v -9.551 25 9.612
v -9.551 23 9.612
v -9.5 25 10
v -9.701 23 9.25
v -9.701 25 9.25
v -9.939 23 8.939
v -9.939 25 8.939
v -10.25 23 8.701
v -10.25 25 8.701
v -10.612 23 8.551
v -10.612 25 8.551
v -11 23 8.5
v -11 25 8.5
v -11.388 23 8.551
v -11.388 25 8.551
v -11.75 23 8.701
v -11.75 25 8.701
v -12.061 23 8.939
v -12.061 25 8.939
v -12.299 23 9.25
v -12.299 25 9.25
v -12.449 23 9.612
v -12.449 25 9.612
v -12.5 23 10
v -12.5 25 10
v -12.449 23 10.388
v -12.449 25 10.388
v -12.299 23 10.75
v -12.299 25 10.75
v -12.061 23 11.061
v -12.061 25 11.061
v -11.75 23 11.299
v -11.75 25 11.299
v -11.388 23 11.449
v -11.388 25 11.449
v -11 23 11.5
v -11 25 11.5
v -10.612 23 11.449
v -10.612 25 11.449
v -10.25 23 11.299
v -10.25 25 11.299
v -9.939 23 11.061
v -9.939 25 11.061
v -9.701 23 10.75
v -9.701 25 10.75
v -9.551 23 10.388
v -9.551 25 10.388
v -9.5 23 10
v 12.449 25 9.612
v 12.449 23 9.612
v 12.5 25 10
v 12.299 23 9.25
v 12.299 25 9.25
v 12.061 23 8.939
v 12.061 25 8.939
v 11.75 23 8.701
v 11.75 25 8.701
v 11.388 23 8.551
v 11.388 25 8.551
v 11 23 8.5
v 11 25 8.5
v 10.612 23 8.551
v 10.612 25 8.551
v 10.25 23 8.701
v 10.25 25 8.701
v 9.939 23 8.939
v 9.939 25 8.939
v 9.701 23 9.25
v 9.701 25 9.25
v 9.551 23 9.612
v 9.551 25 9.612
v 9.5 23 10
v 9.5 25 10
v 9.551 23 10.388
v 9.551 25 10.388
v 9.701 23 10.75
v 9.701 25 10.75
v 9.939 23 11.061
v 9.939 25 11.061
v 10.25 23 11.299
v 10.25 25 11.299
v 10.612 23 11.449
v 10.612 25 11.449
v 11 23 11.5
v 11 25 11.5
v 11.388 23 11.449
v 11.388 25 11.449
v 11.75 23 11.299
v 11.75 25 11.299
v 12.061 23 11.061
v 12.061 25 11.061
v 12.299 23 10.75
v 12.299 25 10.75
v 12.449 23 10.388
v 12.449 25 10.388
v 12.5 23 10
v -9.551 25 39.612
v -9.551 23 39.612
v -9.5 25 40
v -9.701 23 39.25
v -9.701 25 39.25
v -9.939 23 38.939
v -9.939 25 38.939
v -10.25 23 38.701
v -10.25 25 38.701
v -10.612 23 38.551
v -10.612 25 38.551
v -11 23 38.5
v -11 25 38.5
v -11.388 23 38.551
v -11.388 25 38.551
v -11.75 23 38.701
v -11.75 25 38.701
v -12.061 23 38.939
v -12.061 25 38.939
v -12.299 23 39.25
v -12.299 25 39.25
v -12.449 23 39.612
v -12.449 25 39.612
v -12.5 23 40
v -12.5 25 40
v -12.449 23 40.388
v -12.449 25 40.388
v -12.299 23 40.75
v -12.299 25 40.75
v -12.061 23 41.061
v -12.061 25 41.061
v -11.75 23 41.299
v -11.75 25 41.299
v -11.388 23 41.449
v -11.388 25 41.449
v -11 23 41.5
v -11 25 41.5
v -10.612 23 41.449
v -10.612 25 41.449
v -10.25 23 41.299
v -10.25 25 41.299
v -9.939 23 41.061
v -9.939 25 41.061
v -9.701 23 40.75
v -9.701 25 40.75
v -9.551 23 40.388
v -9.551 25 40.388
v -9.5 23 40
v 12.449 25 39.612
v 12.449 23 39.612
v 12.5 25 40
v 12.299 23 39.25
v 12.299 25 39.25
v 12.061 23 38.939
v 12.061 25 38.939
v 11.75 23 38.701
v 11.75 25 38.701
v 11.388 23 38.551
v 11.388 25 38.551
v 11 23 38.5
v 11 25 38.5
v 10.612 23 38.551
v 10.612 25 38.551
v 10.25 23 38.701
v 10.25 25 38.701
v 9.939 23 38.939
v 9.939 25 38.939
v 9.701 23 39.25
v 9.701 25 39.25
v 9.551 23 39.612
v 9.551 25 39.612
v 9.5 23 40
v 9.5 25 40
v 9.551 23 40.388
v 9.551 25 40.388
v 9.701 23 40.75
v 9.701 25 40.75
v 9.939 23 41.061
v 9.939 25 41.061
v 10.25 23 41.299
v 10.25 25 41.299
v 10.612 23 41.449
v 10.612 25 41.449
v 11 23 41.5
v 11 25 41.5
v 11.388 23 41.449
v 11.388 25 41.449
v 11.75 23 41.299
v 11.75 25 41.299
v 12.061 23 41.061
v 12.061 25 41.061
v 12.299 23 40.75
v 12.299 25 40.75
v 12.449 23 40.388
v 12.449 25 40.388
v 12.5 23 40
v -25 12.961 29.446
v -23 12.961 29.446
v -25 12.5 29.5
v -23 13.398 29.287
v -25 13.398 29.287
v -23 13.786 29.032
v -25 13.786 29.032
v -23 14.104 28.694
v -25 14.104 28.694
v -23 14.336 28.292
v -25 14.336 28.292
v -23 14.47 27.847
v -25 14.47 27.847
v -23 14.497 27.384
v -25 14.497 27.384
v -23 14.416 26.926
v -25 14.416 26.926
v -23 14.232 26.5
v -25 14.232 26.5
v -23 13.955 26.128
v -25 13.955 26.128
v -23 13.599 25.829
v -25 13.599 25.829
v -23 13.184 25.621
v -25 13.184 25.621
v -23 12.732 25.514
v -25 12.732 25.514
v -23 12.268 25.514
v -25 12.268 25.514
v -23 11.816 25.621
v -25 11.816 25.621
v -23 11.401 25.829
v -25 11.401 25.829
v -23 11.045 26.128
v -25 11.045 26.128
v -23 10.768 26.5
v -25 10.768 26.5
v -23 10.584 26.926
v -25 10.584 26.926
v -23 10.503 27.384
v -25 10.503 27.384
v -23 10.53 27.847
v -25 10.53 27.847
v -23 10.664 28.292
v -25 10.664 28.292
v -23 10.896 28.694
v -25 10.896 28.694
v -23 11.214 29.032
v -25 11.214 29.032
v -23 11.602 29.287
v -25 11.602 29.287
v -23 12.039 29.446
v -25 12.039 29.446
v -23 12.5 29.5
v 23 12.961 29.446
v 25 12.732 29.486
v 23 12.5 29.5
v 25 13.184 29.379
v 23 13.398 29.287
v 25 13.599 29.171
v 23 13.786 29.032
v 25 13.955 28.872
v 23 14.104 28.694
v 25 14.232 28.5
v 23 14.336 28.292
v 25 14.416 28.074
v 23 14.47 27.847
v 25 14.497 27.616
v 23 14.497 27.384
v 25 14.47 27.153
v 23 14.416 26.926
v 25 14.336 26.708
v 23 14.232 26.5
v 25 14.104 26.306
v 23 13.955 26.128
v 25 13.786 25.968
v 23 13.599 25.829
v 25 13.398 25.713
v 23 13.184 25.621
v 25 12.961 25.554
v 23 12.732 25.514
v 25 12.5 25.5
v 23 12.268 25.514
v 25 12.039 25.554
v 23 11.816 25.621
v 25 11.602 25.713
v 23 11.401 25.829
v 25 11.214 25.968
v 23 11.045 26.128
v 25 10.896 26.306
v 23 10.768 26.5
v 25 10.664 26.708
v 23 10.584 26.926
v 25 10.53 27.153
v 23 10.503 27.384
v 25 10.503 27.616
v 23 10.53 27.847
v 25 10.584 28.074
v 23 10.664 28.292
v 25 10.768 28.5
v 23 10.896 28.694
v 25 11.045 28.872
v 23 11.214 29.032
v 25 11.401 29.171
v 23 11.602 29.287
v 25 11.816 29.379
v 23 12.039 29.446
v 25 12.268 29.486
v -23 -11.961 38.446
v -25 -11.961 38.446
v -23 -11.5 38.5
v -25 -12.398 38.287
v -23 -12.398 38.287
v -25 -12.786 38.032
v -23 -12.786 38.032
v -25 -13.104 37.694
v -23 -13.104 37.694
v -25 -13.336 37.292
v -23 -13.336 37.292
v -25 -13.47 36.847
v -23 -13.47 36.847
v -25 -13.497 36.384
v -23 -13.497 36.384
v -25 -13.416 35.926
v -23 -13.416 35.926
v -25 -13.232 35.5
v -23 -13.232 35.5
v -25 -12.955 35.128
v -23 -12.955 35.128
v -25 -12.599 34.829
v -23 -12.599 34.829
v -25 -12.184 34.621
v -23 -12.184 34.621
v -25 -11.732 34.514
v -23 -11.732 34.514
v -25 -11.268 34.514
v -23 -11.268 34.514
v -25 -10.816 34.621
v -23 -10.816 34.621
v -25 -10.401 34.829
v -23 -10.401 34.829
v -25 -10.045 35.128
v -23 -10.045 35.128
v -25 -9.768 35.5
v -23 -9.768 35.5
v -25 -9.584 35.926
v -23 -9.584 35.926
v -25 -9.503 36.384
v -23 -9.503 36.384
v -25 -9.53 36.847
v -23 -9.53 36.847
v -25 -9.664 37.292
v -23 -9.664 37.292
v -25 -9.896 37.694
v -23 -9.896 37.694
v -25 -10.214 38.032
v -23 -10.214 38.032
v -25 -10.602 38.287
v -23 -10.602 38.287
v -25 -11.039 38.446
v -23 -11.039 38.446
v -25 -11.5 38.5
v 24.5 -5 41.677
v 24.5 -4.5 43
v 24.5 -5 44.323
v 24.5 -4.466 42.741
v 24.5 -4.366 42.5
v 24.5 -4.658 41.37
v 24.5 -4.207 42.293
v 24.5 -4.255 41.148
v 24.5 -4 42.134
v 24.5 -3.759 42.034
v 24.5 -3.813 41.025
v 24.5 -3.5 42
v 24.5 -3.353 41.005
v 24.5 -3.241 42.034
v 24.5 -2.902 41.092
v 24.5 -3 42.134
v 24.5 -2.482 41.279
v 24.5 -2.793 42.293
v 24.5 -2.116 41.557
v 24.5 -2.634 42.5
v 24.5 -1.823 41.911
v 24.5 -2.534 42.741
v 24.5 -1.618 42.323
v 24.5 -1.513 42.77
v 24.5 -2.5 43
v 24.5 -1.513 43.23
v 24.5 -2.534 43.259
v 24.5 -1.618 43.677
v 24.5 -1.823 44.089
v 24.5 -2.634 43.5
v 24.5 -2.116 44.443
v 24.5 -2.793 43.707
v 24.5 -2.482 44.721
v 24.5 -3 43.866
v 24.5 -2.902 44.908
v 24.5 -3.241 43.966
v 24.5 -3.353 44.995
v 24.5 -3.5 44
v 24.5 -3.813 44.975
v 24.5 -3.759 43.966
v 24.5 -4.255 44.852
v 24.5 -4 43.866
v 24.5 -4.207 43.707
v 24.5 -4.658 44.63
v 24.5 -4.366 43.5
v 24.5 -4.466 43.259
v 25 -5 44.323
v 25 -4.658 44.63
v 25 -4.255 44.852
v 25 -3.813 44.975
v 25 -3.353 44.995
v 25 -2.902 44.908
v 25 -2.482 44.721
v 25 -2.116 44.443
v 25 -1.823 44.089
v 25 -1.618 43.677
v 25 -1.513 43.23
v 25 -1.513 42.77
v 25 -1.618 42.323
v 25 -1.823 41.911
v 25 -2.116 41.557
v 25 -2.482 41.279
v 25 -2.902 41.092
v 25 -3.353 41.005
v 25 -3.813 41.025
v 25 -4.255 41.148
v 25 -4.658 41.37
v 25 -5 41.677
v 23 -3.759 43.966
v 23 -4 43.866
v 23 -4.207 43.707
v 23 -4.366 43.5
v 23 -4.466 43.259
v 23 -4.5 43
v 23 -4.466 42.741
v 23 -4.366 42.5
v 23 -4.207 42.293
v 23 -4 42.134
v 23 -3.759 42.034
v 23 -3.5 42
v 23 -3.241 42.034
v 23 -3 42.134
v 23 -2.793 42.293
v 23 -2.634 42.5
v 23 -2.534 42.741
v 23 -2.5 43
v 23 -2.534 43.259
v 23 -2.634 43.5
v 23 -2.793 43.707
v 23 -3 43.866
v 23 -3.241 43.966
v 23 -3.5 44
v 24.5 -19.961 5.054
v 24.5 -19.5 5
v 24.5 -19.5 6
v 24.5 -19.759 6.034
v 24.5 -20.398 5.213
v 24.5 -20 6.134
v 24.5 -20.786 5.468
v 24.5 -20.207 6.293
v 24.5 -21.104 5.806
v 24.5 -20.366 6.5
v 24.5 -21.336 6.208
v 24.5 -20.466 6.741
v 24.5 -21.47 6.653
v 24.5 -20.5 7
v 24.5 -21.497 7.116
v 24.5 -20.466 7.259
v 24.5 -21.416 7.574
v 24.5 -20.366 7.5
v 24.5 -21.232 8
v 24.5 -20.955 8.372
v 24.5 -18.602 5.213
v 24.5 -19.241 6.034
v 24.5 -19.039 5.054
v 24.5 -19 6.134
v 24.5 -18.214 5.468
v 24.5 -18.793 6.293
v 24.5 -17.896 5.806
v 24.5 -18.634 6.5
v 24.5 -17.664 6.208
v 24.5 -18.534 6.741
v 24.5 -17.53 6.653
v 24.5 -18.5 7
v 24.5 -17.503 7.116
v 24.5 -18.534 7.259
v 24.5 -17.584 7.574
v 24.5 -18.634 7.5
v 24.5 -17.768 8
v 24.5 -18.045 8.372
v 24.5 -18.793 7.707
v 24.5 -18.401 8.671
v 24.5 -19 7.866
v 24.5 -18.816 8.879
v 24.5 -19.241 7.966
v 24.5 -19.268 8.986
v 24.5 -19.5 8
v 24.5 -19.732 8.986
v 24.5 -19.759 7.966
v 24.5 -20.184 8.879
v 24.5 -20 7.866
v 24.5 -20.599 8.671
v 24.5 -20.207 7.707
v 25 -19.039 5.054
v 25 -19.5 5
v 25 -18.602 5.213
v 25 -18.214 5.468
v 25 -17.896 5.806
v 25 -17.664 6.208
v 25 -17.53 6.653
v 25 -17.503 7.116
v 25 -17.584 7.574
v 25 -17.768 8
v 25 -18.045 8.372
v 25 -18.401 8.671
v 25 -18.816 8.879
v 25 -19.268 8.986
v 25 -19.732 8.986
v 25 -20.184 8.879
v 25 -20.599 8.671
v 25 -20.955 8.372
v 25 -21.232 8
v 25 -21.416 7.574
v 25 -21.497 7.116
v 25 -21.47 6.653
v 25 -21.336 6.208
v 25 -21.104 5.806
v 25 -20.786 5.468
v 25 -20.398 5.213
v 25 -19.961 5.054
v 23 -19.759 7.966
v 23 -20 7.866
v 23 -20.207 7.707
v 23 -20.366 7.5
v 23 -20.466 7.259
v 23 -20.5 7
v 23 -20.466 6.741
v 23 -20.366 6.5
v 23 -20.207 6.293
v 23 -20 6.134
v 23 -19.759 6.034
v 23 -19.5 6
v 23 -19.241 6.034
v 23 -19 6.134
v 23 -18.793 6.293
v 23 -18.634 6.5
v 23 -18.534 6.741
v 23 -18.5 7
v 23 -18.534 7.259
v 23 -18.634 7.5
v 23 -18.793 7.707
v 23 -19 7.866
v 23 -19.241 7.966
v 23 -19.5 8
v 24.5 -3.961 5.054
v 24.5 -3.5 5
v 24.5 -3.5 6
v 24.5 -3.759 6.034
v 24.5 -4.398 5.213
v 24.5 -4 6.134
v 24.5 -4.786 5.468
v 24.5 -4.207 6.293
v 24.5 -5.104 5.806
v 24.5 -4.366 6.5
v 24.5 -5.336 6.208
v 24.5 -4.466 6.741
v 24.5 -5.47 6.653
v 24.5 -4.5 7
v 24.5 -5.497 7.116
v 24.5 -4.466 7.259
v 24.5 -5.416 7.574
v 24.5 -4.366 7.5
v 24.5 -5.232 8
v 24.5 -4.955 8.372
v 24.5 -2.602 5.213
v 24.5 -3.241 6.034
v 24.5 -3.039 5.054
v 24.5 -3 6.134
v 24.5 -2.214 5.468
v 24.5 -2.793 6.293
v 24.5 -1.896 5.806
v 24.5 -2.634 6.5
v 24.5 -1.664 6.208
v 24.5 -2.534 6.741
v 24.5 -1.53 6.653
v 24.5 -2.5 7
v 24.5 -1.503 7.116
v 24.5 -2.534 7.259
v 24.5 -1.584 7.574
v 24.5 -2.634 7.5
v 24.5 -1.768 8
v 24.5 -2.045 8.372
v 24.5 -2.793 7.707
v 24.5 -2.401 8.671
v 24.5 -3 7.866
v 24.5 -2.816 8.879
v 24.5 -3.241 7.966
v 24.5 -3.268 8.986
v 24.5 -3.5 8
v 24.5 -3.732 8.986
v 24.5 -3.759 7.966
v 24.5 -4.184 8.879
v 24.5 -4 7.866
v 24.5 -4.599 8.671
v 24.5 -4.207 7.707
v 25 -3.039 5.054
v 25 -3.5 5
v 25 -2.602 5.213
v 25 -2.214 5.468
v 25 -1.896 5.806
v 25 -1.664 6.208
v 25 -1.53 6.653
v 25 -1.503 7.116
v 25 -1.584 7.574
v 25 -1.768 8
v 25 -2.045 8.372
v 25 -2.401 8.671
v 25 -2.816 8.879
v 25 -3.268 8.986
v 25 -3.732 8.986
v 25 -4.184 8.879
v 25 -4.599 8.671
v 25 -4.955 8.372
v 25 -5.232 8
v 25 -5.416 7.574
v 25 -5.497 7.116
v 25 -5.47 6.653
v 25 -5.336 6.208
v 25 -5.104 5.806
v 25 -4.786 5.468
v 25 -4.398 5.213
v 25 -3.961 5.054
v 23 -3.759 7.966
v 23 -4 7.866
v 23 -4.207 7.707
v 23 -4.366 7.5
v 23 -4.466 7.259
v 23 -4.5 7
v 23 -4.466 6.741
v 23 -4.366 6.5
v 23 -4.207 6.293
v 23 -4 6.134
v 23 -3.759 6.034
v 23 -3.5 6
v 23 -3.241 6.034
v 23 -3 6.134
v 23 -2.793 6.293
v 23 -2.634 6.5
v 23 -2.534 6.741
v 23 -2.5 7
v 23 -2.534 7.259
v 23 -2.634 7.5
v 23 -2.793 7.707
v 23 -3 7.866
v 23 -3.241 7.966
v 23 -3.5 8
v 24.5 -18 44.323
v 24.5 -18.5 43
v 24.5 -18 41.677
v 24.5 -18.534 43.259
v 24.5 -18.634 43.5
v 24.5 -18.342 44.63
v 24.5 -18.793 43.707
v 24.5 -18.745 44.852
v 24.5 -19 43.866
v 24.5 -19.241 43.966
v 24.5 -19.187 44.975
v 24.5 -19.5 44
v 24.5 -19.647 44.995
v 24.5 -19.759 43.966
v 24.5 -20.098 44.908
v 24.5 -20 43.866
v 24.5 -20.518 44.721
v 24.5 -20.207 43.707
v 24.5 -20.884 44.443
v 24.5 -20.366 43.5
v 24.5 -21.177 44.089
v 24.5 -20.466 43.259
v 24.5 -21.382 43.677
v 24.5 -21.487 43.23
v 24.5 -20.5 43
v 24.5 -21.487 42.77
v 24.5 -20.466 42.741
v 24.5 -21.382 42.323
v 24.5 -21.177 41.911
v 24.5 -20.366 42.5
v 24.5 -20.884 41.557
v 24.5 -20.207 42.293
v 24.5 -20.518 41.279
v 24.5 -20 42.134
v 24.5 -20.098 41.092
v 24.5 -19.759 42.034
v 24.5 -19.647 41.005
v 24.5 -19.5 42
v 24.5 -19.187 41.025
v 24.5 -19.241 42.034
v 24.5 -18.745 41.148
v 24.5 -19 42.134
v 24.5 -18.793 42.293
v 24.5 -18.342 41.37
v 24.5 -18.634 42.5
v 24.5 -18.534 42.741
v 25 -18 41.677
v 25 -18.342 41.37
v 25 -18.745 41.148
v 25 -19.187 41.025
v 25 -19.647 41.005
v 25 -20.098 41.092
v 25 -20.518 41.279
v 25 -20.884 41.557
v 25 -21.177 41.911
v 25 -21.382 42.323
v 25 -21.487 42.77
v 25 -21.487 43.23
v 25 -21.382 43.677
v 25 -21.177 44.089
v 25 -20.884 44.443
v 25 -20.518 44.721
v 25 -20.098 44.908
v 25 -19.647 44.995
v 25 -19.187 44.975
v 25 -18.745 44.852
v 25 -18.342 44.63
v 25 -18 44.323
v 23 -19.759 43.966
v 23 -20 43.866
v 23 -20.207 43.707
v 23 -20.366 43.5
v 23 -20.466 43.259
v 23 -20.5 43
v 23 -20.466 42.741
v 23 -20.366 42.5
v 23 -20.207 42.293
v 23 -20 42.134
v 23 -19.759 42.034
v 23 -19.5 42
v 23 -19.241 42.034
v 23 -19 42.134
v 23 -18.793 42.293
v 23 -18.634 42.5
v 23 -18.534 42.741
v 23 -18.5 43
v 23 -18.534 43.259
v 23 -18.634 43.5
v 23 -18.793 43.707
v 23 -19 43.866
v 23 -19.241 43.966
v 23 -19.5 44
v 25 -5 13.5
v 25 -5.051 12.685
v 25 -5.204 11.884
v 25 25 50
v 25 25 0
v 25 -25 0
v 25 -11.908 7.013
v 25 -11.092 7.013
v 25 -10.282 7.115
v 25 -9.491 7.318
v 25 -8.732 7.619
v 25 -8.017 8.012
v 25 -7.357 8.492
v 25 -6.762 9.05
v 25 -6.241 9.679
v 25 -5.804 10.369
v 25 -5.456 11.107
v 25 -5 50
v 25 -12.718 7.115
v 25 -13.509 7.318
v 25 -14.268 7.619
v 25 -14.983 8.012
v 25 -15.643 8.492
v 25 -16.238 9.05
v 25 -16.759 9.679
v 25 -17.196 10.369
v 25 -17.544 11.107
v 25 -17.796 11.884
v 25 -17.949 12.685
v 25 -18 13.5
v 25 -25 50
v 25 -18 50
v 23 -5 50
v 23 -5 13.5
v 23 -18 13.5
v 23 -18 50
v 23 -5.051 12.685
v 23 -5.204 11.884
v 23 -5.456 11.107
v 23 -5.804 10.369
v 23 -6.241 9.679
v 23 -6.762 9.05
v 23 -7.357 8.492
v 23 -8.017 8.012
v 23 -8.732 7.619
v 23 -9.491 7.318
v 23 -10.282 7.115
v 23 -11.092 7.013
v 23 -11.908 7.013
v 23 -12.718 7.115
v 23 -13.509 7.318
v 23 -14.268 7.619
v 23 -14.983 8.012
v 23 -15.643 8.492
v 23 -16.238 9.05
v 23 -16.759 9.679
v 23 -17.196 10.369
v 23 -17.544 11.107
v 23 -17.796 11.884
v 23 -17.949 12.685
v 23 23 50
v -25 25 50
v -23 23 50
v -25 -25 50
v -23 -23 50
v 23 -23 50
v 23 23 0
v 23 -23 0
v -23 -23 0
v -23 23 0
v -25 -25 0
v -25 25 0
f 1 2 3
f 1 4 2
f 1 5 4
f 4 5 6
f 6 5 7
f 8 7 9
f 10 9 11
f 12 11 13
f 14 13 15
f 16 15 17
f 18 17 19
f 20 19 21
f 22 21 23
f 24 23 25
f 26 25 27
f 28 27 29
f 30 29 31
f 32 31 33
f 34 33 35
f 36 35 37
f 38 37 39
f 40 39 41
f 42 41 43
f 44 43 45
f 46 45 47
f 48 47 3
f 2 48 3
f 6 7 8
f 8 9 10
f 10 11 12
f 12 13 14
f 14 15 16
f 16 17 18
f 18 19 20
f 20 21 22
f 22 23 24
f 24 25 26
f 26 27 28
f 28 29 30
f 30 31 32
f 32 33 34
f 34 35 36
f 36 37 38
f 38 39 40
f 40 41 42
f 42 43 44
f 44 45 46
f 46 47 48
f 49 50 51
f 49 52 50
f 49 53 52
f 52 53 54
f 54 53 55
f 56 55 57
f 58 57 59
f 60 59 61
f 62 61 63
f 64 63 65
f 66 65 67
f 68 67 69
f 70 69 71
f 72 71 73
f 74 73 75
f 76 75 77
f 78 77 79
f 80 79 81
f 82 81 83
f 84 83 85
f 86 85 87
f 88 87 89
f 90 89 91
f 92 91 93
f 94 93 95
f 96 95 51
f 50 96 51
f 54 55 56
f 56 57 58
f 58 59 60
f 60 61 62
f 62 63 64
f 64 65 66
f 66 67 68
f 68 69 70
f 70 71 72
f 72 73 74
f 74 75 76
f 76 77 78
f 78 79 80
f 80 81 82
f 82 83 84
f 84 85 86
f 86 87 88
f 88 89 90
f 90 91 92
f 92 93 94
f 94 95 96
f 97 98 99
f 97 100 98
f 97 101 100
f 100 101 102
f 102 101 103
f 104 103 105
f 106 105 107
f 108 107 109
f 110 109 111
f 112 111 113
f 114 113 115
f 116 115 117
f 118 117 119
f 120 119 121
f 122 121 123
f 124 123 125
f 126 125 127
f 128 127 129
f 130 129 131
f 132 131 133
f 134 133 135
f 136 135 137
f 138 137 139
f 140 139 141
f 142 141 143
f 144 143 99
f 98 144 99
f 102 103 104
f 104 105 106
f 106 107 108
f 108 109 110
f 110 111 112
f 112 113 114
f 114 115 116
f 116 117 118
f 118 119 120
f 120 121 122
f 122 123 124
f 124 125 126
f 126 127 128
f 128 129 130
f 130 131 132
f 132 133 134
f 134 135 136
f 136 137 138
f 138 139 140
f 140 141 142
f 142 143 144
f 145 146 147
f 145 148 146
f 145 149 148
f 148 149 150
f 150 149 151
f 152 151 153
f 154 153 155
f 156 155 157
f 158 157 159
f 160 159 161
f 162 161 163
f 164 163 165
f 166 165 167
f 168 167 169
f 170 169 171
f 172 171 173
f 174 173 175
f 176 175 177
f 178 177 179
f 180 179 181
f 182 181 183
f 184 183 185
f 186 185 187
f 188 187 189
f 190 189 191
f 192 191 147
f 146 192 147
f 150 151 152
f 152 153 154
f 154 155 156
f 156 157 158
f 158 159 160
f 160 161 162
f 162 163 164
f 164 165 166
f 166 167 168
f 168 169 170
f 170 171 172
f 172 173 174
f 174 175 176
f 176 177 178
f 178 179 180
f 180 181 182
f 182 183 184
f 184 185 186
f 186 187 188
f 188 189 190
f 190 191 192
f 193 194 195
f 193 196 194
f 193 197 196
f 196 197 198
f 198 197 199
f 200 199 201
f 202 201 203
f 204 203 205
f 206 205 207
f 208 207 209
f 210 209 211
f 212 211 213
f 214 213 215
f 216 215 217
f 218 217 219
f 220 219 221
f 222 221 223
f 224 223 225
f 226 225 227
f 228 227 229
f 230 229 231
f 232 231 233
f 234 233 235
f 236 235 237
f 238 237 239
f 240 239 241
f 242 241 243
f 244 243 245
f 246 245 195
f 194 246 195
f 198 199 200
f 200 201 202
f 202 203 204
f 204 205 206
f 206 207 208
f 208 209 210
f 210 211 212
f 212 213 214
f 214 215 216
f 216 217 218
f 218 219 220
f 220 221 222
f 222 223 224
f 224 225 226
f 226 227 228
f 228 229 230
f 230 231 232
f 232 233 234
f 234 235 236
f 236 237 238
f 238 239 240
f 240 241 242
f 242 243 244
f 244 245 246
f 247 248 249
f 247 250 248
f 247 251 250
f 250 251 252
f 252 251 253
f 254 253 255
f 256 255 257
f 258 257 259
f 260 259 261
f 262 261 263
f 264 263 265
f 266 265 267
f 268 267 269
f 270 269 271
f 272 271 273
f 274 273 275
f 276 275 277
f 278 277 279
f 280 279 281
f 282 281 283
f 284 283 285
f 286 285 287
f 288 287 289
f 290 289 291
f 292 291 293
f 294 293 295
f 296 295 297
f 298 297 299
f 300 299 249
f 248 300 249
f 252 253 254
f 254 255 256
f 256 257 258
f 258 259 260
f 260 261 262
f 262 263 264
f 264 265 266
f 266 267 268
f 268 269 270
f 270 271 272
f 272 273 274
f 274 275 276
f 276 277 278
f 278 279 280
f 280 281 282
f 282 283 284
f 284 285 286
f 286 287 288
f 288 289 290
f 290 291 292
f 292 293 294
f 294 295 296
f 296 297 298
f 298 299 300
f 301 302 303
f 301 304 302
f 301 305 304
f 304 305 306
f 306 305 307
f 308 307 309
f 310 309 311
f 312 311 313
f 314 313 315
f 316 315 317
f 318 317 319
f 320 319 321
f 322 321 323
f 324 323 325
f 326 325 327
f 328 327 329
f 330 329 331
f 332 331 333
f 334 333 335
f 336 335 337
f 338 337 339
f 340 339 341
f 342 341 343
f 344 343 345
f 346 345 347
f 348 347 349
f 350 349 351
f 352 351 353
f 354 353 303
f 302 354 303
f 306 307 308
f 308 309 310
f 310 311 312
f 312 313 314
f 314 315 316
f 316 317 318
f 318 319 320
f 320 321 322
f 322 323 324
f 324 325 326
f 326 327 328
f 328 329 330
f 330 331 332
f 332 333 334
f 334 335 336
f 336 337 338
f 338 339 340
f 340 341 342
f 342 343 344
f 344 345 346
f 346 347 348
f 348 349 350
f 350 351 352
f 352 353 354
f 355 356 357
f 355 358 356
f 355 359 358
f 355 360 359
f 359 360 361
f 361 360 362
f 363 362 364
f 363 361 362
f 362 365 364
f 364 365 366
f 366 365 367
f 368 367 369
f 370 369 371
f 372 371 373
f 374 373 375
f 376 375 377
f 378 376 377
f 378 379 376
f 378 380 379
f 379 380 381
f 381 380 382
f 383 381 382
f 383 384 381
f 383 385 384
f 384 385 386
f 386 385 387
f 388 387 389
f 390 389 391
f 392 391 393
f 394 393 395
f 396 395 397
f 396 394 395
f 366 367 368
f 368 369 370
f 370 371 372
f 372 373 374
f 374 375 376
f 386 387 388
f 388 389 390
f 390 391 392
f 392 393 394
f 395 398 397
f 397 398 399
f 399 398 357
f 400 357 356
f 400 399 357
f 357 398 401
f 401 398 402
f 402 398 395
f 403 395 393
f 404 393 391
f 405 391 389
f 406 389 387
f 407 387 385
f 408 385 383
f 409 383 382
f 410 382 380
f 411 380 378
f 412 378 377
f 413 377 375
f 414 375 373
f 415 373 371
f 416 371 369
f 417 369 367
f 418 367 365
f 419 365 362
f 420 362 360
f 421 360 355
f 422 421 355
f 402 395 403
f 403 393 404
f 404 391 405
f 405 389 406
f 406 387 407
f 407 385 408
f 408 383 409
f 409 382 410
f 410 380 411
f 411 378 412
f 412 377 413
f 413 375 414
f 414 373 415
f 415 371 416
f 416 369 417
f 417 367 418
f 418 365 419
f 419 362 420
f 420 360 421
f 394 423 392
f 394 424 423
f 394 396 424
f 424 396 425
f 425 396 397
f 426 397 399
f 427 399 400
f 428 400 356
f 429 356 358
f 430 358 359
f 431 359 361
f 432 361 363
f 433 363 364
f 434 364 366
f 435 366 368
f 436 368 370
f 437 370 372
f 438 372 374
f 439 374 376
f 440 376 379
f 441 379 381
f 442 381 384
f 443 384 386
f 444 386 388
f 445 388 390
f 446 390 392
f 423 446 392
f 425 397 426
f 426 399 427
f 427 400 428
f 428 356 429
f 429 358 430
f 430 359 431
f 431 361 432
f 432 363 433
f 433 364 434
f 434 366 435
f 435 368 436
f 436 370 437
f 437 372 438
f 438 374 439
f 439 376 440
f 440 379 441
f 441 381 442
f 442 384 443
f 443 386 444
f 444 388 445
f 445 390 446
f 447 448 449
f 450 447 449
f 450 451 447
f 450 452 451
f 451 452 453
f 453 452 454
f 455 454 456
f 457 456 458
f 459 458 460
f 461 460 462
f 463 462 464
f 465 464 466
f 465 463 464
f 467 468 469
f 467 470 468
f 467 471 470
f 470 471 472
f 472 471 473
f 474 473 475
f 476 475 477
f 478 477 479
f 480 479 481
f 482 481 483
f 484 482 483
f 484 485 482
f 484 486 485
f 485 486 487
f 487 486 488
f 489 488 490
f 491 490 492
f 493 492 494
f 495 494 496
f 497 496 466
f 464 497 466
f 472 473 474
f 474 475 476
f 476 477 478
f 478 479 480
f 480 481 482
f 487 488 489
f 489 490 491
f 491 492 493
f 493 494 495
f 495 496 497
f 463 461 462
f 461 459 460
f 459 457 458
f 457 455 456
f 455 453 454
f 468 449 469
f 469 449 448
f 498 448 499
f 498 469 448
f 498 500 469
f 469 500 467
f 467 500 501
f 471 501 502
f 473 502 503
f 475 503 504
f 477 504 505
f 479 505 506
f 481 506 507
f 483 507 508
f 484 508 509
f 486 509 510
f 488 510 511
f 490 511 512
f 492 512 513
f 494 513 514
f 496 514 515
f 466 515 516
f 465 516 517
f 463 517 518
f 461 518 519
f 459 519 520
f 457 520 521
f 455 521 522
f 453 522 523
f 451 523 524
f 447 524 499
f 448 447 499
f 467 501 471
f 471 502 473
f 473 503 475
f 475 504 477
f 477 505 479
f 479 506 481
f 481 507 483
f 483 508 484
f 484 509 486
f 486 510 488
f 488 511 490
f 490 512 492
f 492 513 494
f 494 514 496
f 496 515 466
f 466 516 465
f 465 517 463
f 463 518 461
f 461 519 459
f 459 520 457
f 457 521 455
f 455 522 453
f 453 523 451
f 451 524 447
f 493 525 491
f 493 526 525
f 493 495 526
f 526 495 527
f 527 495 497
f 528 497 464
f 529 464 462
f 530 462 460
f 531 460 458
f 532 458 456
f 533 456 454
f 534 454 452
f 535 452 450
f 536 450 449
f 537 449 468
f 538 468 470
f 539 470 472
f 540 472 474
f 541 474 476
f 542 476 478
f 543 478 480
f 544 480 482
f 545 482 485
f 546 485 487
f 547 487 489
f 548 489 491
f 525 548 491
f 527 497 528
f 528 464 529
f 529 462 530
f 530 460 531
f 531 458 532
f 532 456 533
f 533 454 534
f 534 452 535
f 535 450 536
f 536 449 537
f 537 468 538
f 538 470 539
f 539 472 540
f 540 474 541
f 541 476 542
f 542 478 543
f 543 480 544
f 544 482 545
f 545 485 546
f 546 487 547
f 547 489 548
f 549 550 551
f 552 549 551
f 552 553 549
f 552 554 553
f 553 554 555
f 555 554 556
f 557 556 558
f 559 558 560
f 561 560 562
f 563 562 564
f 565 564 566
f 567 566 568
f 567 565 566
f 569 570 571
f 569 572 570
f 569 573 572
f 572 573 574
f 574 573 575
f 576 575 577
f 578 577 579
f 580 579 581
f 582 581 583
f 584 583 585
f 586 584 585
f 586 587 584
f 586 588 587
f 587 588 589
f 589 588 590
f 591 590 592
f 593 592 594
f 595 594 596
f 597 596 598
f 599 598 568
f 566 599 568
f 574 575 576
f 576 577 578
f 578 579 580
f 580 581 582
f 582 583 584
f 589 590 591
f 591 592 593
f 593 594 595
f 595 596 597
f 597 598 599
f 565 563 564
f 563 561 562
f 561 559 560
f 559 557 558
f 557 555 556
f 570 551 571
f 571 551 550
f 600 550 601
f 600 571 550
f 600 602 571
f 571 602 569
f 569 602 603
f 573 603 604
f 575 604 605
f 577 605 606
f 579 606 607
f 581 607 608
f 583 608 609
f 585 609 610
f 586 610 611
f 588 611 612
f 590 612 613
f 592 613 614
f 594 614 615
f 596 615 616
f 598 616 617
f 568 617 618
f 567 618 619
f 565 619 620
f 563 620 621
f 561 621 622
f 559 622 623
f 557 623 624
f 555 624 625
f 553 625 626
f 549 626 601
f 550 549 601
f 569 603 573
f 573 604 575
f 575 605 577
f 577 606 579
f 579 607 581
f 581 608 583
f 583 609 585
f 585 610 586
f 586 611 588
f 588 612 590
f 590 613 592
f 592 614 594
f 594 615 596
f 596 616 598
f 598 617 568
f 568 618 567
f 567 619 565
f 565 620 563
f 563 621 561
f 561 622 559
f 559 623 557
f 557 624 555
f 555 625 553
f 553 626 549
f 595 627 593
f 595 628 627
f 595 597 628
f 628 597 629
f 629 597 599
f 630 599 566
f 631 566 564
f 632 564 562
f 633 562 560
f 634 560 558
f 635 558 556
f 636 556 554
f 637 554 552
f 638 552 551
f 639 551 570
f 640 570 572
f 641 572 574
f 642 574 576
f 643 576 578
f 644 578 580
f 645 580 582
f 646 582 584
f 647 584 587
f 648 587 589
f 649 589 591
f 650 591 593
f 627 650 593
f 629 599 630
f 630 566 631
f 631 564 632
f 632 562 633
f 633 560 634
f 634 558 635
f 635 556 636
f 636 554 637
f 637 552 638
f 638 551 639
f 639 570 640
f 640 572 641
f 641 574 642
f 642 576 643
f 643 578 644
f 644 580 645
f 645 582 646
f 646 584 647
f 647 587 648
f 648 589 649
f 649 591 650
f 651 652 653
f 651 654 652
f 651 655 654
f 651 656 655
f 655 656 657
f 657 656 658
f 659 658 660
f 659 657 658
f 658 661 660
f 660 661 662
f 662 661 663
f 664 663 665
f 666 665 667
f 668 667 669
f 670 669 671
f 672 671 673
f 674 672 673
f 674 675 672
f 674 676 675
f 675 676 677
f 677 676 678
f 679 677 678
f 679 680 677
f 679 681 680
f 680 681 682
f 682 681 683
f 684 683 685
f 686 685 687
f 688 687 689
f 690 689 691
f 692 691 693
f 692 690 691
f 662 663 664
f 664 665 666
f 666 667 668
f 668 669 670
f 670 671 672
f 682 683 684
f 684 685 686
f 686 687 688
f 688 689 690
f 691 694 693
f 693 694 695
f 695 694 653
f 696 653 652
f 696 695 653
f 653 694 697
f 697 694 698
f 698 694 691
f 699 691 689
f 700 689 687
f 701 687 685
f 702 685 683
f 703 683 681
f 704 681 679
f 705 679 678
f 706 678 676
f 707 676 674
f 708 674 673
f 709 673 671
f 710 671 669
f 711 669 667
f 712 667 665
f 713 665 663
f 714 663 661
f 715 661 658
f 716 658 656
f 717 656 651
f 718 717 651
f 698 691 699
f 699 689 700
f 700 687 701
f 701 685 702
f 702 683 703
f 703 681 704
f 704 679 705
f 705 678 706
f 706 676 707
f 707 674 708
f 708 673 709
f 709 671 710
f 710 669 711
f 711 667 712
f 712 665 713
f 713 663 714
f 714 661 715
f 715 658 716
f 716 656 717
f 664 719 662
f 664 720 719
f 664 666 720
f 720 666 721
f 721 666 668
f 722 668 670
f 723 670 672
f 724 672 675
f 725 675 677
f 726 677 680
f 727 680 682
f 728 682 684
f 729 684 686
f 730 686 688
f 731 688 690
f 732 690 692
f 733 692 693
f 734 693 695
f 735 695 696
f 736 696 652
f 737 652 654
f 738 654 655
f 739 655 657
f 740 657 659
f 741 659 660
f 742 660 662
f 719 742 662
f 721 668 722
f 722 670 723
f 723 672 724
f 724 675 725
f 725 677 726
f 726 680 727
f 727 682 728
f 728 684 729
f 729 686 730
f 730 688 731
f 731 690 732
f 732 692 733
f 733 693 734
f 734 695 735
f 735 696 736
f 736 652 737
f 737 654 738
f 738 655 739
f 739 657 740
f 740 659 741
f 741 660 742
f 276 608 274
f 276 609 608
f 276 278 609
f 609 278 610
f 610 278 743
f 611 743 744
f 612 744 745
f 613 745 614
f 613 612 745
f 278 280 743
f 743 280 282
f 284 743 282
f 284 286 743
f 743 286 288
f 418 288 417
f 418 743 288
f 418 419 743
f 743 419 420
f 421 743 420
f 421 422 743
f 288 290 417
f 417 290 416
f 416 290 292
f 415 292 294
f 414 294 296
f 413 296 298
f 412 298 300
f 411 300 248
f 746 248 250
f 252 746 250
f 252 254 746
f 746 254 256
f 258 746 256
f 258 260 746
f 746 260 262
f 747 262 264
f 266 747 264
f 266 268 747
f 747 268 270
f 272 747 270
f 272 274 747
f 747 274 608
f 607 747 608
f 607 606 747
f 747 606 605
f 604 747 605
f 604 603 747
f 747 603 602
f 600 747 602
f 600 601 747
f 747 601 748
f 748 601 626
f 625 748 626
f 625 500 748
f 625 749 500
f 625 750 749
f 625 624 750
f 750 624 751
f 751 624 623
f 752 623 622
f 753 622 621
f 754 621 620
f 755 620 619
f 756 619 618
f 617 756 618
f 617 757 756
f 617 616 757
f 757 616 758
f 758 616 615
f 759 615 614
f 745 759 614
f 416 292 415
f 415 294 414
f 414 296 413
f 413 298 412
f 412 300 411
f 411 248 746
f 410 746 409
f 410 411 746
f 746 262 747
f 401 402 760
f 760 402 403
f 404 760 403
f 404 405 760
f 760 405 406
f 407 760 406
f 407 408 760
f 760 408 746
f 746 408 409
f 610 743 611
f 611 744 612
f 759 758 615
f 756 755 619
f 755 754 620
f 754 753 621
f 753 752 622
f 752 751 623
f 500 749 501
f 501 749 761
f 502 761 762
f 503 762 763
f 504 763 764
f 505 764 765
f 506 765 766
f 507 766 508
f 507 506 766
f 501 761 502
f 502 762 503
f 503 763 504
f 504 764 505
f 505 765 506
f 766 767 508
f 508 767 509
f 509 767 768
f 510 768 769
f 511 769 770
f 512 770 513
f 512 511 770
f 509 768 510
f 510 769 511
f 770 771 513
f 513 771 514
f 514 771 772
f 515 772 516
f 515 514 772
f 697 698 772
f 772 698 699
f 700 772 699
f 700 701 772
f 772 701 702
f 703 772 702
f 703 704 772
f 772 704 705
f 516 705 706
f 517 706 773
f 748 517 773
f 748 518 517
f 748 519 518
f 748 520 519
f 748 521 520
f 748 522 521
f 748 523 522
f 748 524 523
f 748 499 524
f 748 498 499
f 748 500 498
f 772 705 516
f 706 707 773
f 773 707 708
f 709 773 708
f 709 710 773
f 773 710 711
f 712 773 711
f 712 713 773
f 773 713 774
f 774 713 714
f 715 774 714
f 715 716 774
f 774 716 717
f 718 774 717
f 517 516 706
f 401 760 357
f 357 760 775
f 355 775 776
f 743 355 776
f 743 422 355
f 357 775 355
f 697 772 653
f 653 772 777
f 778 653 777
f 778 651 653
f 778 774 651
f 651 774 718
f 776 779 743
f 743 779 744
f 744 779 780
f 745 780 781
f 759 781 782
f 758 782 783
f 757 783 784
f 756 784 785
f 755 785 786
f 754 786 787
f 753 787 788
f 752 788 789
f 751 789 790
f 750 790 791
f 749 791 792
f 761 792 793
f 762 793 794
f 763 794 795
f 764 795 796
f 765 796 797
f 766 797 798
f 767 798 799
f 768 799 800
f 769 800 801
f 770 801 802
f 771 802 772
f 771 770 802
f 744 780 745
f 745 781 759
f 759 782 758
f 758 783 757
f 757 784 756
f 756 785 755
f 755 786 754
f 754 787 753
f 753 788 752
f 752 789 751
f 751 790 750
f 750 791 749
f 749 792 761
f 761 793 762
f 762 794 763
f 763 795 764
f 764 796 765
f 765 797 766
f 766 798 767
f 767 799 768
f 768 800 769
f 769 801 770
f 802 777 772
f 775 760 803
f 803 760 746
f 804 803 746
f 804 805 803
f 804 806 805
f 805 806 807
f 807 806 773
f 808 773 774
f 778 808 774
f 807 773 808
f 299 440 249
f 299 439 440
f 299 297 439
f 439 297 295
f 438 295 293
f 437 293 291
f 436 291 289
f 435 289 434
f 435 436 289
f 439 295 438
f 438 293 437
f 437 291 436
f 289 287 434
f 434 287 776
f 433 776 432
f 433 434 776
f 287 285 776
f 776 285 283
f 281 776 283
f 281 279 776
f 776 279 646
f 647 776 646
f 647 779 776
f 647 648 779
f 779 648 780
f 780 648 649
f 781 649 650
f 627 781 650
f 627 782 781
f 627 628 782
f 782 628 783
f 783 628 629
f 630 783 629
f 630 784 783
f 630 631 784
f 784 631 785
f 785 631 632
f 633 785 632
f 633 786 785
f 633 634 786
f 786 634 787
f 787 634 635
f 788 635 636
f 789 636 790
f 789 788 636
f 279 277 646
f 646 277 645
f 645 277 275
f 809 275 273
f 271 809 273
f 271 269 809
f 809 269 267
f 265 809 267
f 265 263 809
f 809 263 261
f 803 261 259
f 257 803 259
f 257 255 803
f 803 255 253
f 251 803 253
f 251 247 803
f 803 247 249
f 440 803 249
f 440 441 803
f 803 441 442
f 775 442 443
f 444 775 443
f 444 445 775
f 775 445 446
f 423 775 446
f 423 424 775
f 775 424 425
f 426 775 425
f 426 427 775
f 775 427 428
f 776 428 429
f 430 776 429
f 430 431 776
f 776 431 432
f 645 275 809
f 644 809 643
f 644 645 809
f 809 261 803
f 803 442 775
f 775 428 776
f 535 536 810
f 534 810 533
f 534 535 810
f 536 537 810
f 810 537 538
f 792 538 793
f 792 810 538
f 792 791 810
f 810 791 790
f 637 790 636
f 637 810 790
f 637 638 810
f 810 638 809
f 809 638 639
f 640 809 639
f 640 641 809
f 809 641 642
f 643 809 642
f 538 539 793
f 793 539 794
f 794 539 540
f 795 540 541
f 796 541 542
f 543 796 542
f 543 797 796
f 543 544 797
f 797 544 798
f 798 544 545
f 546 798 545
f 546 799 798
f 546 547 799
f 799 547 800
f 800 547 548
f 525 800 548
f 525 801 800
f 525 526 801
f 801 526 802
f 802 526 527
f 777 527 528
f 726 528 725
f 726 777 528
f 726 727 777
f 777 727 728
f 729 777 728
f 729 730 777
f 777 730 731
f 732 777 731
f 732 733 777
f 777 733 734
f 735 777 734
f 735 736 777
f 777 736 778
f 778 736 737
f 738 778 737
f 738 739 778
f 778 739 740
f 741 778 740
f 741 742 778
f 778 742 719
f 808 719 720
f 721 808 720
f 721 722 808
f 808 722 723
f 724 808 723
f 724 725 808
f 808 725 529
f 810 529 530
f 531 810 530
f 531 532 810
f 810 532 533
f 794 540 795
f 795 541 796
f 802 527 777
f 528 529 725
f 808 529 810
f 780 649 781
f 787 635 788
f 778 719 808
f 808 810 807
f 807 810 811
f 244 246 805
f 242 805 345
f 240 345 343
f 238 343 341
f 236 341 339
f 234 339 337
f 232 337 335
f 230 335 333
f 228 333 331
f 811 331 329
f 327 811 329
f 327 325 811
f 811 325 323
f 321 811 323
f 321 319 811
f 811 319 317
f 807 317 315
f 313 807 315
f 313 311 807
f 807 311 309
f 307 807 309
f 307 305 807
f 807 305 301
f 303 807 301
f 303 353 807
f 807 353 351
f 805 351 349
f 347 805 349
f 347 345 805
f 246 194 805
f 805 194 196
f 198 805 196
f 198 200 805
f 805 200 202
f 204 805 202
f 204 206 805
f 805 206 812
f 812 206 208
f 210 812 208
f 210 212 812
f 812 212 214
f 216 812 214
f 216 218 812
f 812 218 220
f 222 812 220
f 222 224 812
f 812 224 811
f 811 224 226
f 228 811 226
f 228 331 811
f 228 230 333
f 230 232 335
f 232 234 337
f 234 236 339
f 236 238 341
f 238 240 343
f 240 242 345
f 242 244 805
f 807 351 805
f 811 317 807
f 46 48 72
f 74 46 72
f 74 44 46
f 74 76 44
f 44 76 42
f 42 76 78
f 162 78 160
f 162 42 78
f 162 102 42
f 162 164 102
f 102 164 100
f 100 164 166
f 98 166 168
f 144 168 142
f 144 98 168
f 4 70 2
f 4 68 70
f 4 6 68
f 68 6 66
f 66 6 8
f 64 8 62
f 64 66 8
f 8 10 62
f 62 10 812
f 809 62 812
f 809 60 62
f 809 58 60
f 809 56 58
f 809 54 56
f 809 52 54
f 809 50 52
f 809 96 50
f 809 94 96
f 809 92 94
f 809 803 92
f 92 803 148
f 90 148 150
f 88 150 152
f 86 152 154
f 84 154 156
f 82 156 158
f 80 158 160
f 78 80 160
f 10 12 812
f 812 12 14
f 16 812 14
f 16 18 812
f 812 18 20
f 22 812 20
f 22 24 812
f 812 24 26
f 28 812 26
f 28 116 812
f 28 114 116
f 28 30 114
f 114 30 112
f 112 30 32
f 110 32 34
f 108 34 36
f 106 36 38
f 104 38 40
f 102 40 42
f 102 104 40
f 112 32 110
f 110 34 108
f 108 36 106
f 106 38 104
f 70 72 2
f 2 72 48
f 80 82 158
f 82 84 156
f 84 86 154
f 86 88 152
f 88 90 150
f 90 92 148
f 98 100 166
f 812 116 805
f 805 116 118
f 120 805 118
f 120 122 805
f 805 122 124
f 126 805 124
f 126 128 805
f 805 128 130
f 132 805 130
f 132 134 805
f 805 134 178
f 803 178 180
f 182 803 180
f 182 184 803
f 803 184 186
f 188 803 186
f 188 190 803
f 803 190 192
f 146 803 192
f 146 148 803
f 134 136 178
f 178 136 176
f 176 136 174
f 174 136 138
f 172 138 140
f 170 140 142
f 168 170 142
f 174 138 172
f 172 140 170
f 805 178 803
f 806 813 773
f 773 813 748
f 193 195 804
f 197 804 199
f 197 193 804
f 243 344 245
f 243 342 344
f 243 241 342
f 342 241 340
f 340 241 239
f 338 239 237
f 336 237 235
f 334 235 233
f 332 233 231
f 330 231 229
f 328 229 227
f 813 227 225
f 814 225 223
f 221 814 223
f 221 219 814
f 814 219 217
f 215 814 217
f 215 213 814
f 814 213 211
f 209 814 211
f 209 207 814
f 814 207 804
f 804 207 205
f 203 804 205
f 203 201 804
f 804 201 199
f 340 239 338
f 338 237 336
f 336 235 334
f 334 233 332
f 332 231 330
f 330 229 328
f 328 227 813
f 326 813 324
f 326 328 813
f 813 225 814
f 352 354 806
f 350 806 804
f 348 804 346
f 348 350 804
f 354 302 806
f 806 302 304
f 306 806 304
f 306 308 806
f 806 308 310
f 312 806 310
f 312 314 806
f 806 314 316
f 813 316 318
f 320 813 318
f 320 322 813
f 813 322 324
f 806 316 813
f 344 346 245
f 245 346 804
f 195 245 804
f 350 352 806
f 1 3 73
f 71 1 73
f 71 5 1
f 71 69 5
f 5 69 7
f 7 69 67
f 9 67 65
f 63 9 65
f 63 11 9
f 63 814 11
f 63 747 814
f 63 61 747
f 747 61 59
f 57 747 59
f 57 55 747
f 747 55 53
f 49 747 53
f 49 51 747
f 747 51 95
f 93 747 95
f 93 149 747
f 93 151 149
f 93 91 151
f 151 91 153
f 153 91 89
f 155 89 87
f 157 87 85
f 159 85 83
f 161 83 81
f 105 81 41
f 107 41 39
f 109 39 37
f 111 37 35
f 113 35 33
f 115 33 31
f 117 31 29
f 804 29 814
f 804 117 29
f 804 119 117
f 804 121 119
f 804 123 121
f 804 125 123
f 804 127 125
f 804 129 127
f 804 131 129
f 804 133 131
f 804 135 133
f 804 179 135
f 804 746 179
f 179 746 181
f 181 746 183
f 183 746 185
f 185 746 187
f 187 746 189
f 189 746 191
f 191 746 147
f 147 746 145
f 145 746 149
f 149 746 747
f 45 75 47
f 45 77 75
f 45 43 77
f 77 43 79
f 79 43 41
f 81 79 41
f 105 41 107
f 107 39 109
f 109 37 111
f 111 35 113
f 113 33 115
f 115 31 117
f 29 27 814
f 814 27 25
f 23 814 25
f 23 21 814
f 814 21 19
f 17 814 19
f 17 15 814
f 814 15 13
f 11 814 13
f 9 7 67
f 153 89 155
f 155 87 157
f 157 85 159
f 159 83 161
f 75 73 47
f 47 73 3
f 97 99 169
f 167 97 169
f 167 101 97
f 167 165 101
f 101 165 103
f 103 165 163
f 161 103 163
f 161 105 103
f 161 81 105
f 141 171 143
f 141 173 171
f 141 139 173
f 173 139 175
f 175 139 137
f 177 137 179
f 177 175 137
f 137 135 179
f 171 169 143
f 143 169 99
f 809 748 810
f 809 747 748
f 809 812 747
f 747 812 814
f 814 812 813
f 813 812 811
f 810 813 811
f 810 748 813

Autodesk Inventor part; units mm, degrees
ref_plane "YZ Plane" through (0, 0, 0) normal (1, 0, 0) x (0, 1, 0)
ref_plane "XZ Plane" through (0, 0, 0) normal (0, 1, 0) x (-1, 0, 0)
ref_plane "XY Plane" through (0, 0, 0) normal (0, 0, 1) x (1, 0, 0)
sketch "スケッチ1" plane through (0, 0, 0) normal (0, 0, 1) x (1, 0, 0)
  line L0 (-25, 25) -> (25, 25)
  line L1 (25, 25) -> (25, -25)
  line L2 (25, -25) -> (-25, -25)
  line L3 (-25, -25) -> (-25, 25)
  line L4 (-23, 23) -> (23, 23)
  line L5 (23, 23) -> (23, -23)
  line L6 (23, -23) -> (-23, -23)
  line L7 (-23, -23) -> (-23, 23)
  point P0 (0, 0)
  dimension "d0" = 50
  dimension "d1" = 50
  dimension "d4" = 25
  dimension "d5" = 25
  dimension "d6" = 46
  dimension "d7" = 2
  dimension "d8" = 46
  dimension "d9" = 2
extrude "押し出し1" add sketch "スケッチ1" along normal blind 50
sketch "スケッチ2" plane through (25, -25, 0) normal (1, 0, 0) x (0, 0, -1)
  line L0 (-50, 50) -> (-50, 0) projected
  line L1 (0, 0) -> (-50, 0) projected
  line L2 (-50, 20) -> (-13.5, 20)
  line L3 (-13.5, 7) -> (-50, 7)
  line L4 (-50, 7) -> (-50, 20)
  arc A0 (-13.5, 7) -> (-13.5, 20) centre (-13.5, 13.5) ccw
  point P0 (0, 25)
  point P1 (-7, 13.5)
  dimension "d34" = 13
  dimension "d35" = 7
  dimension "d43" = 13
  dimension "d44" = 6.5
  dimension "d46" = 36.5
extrude "押し出し2" cut sketch "スケッチ2" against normal blind 30.5
sketch "スケッチ3" plane through (25, -25, 0) normal (1, 0, 0) x (0, 0, -1)
  arc A0 (-13.5, 7) -> (-13.5, 20) centre (-13.5, 13.5) ccw projected
  line L0 (-13.5, 7) -> (-50, 7) projected
  circle A1 centre (-7, 21.5) radius 1
  circle A2 centre (-43, 21.5) radius 1
  circle A3 centre (-43, 5.5) radius 1
  circle A4 centre (-7, 5.5) radius 1
  point P0 (0, 25)
  dimension "d47" = 8
  dimension "d48" = 8
  dimension "d49" = 16
  dimension "d50" = 1.5
  dimension "d51" = 36
  dimension "d52" = 36
  dimension "d53" = 6.5
  dimension "d55" = 2
  dimension "d56" = 6.5
hole "穴1" at (25, -19.5, 43) at (25, -3.5, 7) at (25, -19.5, 7) at (25, -3.5, 43) direction (-1, 0, 0) diameter 2 depth 2 tip angle 118 counterbore diameter 4 counterbore depth 0.5
sketch "スケッチ11" plane through (25, -25, 0) normal (1, 0, 0) x (0, 0, -1)
  line L0 (0, 0) -> (-50, 0) projected
  circle A0 centre (-27.5, 37.5) radius 1.5
  line L1 (-50, 50) -> (-50, 20) projected
  circle A1 centre (-36.5, 13.5) radius 1.5
  line L2 (0, 50) -> (0, 0) projected
  point P0 (0, 25)
  dimension "d108" = 13.5
  dimension "d109" = 3
  dimension "d110" = 13.5
  dimension "d128" = 24
  dimension "d137" = 27.5
hole "穴6" at (25, -11.5, 36.5) at (25, 12.5, 27.5) direction (-1, 0, 0) diameter 4 end through all
sketch "スケッチ17" plane through (-25, 25, 50) normal (0, 1, 0) x (1, 0, 0)
  line L0 (0, 50) -> (50, 50) projected
  line L1 (0, 0) -> (50, 0) projected
  circle A0 centre (14, 40) radius 1.5
  circle A1 centre (36, 40) radius 1.5
  circle A2 centre (14, 10) radius 1.5
  circle A3 centre (36, 10) radius 1.5
  point P0 (49.5, 0)
  point P1 (49.5, 50)
  point P2 (25, 50)
  dimension "d196" = 3
  dimension "d199" = 10
  dimension "d200" = 10
  dimension "d201" = 10
  dimension "d202" = 10
  dimension "d239" = 22
  dimension "d240" = 22
  dimension "d241" = 11
  dimension "d242" = 11
hole "穴12" at (11, 25, 40) at (-11, 25, 40) at (11, 25, 10) at (-11, 25, 10) direction (0, -1, 0) diameter 3 depth 2 tip angle 118
thread "ねじ1" size "M3x0.5" class "6H" standard "ANSI Metric M Profile" full length
thread "ねじ2" size "M3x0.5" class "6H" standard "ANSI Metric M Profile" full length
thread "ねじ3" size "M3x0.5" class "6H" standard "ANSI Metric M Profile" full length
thread "ねじ4" size "M3x0.5" class "6H" standard "ANSI Metric M Profile" full length
properties part number "05" material "アルミニウム 6061"
